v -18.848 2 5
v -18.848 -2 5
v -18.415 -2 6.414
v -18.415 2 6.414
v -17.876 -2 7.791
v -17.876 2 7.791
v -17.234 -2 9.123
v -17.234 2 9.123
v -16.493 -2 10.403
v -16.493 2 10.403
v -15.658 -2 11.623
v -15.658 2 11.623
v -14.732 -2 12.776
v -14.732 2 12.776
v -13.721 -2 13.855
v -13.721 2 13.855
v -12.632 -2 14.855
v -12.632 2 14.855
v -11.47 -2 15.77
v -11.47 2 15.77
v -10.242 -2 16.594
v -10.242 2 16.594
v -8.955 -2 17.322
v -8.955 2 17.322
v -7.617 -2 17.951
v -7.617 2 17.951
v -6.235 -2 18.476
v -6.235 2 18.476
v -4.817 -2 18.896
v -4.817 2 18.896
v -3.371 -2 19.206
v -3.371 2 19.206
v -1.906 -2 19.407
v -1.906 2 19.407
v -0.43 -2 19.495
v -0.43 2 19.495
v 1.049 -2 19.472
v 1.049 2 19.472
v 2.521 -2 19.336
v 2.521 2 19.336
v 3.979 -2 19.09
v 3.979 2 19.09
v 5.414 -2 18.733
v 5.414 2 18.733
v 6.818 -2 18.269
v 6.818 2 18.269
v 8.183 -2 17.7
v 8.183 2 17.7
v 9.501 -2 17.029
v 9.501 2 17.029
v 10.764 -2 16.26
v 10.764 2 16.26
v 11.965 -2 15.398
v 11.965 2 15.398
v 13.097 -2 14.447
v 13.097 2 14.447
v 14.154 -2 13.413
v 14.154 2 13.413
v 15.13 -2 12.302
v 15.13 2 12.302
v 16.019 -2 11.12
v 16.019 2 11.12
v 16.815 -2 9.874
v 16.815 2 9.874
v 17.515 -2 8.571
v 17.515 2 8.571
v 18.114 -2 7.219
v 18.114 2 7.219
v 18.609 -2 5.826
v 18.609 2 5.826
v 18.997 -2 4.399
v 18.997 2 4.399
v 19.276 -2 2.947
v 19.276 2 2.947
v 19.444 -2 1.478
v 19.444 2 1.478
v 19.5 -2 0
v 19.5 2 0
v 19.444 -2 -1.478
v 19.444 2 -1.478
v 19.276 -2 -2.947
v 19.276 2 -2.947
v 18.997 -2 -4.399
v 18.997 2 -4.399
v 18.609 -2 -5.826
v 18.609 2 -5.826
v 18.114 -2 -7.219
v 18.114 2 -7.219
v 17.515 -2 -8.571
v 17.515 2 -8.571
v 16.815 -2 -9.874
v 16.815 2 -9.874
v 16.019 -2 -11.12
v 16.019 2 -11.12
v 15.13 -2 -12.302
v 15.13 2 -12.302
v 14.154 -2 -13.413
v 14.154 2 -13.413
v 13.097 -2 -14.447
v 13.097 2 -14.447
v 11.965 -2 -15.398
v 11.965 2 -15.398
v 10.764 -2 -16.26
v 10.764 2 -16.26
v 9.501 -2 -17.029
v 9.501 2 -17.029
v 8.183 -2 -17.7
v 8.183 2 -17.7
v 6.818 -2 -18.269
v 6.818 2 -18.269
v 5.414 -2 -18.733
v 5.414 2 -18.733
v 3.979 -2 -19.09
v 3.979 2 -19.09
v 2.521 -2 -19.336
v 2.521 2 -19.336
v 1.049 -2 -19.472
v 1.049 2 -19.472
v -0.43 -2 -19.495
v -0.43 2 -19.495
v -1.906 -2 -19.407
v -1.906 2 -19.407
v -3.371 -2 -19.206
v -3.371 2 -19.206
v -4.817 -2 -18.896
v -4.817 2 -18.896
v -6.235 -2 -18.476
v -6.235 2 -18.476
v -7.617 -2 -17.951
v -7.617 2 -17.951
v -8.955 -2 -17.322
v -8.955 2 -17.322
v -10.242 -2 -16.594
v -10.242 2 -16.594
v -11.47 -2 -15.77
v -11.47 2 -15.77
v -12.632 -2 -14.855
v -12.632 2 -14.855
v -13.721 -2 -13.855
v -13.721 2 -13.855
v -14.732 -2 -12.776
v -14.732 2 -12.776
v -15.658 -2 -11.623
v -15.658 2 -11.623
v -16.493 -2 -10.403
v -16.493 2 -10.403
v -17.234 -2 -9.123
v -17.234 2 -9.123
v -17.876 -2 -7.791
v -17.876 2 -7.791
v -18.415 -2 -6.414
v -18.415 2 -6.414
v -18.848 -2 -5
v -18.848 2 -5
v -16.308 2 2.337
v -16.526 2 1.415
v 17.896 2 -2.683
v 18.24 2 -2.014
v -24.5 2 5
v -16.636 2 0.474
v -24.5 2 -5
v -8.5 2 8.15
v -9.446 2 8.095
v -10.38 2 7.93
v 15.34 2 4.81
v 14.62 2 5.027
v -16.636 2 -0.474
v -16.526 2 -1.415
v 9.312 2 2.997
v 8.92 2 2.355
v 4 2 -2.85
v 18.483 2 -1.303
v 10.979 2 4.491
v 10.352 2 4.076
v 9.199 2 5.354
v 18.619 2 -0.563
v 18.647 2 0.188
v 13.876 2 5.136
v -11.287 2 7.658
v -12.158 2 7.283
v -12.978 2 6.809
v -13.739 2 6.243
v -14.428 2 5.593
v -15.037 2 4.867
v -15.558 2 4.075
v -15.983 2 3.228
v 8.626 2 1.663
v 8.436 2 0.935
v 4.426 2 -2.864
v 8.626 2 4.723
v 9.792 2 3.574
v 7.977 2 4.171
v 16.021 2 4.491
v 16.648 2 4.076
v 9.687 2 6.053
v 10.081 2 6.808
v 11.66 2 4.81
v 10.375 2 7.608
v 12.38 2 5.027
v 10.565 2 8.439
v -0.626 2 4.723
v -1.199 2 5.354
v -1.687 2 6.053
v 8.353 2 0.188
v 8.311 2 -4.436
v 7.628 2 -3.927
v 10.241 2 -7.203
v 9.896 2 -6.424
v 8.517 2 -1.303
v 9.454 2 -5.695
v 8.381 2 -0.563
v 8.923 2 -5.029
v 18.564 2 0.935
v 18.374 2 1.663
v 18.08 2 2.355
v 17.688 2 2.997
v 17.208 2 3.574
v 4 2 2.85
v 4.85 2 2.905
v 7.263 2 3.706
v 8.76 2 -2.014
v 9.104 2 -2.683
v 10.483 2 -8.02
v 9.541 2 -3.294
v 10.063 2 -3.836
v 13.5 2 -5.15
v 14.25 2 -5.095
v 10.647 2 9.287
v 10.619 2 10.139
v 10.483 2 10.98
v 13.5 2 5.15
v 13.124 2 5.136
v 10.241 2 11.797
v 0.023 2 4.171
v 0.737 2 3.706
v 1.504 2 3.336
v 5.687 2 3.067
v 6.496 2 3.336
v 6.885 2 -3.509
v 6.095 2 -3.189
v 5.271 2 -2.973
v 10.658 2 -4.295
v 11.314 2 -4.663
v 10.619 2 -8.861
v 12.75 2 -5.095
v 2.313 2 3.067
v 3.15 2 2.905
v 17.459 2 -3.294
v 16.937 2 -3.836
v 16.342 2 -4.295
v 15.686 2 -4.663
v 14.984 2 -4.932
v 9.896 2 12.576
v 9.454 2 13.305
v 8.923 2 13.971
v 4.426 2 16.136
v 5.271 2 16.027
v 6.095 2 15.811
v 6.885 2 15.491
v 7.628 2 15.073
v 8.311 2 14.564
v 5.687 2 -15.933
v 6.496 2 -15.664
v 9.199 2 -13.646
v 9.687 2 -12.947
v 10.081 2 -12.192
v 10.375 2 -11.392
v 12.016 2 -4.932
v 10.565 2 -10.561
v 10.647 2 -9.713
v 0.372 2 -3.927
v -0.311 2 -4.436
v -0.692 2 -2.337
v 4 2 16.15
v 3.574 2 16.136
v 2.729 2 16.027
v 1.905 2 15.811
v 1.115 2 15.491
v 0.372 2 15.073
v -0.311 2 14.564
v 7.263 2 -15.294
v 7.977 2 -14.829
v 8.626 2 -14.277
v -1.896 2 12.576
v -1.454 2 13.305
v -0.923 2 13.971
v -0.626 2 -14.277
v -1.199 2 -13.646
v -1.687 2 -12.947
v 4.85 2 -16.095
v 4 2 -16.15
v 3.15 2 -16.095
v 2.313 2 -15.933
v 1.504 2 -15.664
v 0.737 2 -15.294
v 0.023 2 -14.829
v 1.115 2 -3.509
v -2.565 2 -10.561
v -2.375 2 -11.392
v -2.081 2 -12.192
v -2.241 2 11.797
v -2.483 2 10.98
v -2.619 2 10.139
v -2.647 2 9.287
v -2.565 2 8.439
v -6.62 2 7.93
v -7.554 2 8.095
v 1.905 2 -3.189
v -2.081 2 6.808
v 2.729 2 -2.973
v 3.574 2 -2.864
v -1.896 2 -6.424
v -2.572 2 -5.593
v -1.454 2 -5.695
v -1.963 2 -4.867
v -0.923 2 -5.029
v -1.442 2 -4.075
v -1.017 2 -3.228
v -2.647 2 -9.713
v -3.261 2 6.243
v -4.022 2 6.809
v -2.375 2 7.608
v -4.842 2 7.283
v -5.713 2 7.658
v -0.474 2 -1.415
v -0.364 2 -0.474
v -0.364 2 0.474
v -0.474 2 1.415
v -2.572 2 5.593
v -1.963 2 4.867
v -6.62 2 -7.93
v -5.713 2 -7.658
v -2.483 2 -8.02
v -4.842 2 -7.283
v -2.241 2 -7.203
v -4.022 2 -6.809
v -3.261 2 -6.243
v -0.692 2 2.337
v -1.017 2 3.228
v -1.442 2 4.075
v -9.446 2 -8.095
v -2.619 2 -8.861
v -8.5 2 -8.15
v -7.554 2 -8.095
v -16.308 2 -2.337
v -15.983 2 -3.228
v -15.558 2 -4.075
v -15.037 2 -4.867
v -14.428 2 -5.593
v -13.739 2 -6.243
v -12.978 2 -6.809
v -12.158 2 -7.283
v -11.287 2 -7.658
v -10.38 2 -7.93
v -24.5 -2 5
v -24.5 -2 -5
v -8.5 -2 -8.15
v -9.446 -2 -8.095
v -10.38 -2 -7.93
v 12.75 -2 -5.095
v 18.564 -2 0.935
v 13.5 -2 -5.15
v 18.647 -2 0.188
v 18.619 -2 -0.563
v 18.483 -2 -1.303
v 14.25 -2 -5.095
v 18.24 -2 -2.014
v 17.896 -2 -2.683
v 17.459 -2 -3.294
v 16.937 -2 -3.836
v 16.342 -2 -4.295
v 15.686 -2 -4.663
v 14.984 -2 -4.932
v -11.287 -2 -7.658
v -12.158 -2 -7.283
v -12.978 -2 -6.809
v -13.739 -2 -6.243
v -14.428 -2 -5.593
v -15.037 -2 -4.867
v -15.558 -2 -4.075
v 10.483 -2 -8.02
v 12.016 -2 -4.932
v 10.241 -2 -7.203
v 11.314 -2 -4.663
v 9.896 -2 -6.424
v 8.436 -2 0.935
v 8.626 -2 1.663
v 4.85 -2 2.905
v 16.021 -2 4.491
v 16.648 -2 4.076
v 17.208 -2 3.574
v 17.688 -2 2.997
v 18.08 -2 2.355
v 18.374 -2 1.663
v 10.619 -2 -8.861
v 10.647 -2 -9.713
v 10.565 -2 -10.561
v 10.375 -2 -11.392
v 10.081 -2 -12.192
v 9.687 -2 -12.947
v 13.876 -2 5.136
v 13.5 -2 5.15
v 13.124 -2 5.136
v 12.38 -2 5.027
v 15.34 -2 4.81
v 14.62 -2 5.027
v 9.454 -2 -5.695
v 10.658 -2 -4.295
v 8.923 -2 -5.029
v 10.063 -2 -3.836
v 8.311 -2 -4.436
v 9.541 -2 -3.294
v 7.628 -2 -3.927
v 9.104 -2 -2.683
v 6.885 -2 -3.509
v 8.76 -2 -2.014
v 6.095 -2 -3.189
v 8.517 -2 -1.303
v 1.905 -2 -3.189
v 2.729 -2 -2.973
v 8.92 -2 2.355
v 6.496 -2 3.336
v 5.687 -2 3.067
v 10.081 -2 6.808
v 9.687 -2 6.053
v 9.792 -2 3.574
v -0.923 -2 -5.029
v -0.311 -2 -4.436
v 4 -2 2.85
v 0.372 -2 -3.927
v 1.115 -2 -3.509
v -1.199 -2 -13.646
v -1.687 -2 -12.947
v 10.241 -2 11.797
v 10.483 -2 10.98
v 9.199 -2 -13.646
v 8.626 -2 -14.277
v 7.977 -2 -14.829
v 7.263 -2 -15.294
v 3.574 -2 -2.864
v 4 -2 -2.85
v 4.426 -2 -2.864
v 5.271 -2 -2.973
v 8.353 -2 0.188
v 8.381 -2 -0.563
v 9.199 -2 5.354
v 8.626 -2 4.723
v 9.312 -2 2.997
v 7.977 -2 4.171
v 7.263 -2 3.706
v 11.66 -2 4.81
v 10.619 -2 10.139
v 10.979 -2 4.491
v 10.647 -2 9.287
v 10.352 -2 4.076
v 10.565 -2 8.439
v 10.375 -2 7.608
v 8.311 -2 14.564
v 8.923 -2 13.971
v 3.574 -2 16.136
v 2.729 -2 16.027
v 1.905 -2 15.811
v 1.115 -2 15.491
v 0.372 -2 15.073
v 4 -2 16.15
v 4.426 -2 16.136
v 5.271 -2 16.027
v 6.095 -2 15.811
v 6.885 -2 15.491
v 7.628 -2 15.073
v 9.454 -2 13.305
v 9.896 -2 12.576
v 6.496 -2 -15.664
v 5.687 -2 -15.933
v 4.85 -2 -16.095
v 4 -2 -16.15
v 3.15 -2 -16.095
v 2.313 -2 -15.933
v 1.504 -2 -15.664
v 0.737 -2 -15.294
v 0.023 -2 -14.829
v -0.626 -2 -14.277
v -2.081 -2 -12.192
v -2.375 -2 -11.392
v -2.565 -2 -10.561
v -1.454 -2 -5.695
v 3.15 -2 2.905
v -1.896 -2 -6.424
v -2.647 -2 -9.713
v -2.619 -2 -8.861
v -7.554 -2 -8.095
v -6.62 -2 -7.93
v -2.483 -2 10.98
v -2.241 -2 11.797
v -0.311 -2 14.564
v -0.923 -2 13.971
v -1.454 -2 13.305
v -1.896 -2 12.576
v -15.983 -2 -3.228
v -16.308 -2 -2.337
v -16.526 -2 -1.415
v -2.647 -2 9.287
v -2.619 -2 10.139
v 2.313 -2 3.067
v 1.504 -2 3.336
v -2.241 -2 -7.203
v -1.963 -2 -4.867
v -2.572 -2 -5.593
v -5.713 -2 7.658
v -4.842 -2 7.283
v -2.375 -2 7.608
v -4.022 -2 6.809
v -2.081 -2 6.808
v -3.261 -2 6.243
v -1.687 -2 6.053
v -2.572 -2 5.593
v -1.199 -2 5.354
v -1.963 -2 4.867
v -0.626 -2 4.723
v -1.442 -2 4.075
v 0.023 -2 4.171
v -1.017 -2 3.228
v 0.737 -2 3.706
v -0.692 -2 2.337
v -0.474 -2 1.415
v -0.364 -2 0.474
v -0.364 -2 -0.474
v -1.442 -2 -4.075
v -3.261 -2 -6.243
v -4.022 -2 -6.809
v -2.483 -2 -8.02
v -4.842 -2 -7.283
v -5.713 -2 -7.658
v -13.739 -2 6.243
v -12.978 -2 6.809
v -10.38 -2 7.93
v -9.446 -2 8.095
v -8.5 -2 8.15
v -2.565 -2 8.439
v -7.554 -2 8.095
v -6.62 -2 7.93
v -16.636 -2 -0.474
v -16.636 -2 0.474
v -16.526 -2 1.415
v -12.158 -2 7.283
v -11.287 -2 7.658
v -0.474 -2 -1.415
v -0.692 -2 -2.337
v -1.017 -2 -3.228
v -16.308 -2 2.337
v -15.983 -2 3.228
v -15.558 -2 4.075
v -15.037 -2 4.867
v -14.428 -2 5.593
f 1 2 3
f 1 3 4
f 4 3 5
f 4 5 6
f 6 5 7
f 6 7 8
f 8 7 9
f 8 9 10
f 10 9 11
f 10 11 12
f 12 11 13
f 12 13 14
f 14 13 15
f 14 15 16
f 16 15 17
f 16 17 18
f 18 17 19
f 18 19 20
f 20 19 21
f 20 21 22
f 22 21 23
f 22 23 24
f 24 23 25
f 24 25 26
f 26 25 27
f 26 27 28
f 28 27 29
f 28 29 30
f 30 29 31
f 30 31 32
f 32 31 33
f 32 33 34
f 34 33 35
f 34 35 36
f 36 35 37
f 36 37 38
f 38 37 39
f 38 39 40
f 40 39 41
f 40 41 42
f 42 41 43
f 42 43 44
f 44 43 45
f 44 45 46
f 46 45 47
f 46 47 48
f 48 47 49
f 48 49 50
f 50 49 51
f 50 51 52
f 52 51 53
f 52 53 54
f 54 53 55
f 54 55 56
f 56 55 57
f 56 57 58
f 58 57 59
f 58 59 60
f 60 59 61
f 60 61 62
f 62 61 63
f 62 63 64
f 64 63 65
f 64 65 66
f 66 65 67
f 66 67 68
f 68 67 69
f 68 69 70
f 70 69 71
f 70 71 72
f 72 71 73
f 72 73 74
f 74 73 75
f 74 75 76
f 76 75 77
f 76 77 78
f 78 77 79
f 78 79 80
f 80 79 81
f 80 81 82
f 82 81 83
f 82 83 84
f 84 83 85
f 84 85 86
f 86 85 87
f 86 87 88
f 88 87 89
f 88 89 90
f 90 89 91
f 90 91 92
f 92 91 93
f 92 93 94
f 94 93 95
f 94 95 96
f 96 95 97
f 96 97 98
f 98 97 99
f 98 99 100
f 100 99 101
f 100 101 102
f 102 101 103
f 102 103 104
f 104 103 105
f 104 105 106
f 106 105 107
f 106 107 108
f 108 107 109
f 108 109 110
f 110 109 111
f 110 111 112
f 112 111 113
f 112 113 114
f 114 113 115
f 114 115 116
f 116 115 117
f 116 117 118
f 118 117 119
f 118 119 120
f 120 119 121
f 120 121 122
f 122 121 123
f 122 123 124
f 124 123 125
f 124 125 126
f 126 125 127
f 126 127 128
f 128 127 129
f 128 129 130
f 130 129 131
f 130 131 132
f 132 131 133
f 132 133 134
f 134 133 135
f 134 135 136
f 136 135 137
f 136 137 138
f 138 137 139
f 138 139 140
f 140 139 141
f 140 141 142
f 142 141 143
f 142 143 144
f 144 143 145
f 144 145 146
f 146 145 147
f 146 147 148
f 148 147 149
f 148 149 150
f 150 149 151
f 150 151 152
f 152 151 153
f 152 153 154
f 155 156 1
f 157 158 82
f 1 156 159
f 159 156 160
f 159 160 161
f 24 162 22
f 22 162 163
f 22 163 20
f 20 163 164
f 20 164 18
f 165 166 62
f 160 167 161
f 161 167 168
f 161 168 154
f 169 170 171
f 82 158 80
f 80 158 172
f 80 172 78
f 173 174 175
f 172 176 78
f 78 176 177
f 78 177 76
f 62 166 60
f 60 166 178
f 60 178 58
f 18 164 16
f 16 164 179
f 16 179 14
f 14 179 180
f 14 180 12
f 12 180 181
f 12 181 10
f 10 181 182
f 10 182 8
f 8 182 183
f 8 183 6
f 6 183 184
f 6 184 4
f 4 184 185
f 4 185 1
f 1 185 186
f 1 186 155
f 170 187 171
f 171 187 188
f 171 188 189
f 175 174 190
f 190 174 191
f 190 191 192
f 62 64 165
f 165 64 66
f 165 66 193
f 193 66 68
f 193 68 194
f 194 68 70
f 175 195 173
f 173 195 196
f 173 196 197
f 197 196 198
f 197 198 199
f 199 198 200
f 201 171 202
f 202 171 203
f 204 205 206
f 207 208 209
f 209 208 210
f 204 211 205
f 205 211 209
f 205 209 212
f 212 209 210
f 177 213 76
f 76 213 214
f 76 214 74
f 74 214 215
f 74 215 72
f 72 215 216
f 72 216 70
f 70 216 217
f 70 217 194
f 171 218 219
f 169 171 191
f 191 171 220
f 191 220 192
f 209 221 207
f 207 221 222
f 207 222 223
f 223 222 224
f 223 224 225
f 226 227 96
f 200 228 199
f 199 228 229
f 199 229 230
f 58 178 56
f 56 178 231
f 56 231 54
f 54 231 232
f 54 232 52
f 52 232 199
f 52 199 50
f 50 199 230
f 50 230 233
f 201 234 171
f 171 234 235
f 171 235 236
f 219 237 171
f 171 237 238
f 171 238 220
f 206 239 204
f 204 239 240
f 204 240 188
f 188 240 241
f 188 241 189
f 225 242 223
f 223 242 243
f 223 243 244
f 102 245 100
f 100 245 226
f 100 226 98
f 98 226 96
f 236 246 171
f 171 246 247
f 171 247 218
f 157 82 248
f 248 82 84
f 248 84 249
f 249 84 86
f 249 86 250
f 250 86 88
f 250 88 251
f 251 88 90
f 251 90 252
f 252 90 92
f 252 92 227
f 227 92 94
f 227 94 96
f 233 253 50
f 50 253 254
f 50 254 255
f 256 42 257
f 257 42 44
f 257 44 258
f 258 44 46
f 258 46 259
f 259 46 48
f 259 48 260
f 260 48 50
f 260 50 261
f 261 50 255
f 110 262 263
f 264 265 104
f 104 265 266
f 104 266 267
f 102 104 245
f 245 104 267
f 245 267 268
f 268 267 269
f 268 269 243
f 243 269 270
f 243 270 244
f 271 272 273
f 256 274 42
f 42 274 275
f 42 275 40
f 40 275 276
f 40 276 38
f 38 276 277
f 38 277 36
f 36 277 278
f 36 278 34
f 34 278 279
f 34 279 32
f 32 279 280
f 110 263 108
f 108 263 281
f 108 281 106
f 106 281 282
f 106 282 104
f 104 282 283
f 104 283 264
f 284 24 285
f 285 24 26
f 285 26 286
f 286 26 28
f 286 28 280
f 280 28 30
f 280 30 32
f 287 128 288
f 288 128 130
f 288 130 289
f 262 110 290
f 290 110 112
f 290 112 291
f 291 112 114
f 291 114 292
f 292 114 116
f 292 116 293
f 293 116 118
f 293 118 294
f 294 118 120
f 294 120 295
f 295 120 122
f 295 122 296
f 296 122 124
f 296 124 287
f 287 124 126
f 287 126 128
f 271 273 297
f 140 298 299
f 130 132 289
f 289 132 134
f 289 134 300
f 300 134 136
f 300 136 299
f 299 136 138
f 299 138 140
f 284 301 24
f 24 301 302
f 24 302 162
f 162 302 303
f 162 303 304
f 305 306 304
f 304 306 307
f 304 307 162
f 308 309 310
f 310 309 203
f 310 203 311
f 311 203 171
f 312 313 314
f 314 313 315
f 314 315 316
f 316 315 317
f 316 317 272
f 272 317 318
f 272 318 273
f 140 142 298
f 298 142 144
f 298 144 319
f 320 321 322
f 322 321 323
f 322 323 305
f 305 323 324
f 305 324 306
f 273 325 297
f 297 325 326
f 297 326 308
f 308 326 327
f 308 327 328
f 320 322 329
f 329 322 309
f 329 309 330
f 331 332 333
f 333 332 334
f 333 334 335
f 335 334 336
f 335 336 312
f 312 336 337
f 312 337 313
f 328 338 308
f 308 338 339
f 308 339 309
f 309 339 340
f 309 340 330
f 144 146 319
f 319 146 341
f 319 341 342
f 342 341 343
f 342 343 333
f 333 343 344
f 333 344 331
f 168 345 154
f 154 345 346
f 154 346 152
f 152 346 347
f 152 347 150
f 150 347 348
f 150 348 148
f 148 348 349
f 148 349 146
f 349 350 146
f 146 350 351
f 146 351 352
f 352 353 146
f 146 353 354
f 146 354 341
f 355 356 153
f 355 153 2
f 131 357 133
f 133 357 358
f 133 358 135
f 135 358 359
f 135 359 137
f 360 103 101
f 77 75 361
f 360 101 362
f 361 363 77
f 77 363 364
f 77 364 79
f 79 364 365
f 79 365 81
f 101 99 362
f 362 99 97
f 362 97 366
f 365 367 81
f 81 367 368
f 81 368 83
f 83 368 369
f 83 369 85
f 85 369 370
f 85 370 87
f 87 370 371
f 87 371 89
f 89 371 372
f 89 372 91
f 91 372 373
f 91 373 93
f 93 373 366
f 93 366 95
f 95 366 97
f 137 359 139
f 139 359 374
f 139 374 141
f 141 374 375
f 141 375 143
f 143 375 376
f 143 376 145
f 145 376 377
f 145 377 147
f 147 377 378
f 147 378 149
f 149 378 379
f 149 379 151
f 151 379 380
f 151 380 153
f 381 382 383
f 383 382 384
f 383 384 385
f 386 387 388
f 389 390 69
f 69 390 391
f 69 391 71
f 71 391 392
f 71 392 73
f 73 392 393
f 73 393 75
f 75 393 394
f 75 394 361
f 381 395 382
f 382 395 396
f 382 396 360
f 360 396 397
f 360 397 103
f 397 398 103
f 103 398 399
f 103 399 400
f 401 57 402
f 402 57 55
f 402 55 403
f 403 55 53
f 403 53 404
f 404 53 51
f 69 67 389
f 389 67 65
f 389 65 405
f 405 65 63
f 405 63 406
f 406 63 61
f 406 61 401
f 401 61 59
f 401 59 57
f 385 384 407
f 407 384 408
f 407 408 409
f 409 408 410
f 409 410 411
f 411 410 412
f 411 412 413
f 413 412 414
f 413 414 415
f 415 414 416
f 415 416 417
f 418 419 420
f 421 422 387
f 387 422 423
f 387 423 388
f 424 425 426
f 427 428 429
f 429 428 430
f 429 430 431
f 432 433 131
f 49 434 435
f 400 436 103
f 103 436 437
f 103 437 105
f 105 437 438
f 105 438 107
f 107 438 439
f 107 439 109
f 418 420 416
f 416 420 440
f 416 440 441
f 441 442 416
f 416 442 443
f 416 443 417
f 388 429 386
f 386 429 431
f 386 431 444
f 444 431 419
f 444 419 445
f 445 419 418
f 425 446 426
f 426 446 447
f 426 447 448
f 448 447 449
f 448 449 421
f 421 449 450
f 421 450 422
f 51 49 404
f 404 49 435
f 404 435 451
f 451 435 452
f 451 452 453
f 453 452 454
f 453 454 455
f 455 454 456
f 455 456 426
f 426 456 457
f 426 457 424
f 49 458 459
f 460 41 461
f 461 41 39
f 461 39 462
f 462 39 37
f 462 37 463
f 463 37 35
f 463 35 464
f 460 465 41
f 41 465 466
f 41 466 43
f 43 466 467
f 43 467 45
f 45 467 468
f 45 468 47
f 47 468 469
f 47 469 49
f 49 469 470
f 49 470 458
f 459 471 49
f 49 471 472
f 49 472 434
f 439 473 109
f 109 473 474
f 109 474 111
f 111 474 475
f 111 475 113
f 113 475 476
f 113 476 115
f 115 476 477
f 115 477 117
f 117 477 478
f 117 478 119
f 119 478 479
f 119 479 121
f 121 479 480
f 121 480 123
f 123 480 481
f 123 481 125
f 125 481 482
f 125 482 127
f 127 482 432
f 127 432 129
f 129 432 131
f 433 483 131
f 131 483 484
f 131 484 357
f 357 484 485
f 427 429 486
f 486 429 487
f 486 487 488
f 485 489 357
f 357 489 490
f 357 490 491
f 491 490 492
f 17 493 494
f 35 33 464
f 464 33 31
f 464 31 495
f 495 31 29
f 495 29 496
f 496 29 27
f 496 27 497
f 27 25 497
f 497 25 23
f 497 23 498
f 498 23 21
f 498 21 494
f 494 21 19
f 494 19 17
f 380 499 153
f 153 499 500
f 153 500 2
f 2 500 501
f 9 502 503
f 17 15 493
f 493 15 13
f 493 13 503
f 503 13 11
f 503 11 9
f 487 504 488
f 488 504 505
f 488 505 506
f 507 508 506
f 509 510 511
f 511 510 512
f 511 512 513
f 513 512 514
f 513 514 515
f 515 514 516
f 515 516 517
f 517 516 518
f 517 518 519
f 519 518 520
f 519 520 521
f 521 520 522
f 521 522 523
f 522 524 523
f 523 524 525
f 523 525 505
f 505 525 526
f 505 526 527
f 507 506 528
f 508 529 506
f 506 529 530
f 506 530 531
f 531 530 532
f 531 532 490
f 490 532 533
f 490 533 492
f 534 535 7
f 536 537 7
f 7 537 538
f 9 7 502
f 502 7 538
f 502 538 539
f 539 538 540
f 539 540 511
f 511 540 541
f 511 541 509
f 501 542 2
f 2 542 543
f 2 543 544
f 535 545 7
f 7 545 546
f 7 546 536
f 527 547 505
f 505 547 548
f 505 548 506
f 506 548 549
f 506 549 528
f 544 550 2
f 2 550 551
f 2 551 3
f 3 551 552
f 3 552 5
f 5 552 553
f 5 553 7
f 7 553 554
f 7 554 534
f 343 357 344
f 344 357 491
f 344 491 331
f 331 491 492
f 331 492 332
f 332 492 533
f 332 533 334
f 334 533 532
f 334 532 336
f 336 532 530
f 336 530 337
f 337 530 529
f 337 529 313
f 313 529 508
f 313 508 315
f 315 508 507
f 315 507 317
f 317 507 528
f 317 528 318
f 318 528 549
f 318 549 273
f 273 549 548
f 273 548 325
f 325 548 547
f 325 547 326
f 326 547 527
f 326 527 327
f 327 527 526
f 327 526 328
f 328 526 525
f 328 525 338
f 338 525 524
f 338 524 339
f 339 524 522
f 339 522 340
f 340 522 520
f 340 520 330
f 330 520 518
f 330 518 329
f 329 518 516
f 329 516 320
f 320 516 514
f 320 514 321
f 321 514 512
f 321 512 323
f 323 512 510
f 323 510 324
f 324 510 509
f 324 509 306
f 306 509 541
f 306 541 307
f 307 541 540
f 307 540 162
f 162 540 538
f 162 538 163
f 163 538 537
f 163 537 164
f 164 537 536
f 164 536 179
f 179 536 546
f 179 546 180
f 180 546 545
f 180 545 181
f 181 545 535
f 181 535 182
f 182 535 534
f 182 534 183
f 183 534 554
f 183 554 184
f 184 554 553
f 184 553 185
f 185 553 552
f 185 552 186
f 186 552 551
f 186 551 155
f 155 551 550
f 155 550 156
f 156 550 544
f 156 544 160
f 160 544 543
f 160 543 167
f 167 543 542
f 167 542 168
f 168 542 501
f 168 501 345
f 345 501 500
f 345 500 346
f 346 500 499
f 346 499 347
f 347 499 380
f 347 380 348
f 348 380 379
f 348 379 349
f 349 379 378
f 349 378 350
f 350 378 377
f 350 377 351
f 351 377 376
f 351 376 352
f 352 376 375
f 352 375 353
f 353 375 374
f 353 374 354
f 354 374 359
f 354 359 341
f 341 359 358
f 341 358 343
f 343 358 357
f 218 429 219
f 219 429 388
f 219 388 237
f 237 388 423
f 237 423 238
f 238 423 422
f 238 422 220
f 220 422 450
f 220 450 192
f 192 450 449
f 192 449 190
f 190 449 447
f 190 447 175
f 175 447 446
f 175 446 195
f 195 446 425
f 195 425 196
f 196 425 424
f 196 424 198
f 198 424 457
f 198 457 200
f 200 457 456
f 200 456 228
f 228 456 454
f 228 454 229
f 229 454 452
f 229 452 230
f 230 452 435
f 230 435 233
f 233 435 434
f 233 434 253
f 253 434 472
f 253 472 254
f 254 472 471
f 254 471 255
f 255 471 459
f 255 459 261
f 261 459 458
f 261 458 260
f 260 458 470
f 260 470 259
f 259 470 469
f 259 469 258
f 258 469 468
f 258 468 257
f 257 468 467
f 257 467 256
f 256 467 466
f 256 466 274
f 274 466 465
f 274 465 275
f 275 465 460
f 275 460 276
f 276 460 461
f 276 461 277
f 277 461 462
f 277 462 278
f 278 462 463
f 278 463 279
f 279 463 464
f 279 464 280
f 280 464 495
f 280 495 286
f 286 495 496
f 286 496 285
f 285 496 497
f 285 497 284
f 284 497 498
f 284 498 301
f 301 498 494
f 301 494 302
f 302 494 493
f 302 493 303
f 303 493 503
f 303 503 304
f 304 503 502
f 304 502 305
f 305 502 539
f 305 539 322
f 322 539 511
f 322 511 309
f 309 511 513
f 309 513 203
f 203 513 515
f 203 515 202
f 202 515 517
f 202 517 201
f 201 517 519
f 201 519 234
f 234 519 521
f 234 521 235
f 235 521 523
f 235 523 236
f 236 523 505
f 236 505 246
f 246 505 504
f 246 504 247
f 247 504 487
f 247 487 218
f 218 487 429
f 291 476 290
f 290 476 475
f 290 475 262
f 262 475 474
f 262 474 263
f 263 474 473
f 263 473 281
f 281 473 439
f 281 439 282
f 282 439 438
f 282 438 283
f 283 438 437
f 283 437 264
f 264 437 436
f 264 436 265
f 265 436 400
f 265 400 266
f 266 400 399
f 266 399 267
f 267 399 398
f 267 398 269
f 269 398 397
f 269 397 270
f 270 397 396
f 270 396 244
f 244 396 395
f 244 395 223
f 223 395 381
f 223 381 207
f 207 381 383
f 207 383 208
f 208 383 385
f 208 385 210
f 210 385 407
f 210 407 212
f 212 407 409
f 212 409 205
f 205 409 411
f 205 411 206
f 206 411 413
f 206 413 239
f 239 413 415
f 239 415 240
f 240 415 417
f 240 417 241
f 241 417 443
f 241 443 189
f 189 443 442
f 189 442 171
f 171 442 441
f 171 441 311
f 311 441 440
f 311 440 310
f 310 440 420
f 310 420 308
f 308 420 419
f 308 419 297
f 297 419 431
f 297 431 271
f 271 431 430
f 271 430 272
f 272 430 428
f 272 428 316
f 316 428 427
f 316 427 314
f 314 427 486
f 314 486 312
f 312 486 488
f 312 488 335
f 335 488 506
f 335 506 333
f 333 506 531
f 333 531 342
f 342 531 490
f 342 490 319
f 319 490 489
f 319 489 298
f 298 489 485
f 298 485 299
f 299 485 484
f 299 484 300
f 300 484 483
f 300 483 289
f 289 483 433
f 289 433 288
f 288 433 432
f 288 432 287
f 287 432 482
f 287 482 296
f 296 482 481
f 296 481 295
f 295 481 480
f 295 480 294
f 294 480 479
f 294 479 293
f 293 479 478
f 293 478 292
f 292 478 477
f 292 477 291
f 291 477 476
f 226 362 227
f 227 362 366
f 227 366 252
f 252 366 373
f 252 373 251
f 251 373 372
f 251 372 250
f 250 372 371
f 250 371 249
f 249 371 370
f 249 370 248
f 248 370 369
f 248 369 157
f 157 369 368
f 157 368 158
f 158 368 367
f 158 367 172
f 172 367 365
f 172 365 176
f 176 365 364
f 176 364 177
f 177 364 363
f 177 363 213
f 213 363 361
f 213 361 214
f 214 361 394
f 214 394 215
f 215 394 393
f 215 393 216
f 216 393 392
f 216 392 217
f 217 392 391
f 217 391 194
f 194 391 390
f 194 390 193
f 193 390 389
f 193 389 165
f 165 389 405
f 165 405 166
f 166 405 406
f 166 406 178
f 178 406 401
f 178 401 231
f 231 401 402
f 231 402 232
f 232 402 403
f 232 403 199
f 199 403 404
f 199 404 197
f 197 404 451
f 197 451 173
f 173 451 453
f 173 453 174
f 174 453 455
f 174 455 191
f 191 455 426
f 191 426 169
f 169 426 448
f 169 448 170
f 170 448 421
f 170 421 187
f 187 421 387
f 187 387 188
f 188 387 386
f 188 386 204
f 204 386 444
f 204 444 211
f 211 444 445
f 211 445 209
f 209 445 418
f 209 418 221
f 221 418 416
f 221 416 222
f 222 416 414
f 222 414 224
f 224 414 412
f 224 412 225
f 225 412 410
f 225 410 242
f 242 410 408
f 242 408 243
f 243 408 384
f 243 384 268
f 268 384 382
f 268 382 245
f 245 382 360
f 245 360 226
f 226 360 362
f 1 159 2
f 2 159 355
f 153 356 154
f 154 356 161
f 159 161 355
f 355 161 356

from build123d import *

# Parameters (mm, degrees)
SKETCH1_R             = 19.5
SKETCH1_R_2           = 8.15
SKETCH1_R_3           = 6.65
SKETCH1_R_4           = 5.15
DISCO_SEPARADOR_DEPTH = 4
SKETCH2_W             = 7
SKETCH2_H             = 10
PATA_AL_HUESO_DEPTH   = 4


with BuildPart() as part:
    # Sketch1 → Disco_separador (new body)
    with BuildSketch(Plane(origin=(0, -2, 0), x_dir=(1, 0, 0), z_dir=(0, 1, 0))):
        with Locations(Location((0, 0, 0), (0, 0, 270))):
            Circle(SKETCH1_R)
        with Locations(Location((-8.5, 0, 0), (0, 0, 270))):
            Circle(SKETCH1_R_2, mode=Mode.SUBTRACT)
        with Locations(Location((4, -9.5, 0), (0, 0, 270))):
            Circle(SKETCH1_R_3, mode=Mode.SUBTRACT)
        with Locations(Location((4, 9.5, 0), (0, 0, 270))):
            Circle(SKETCH1_R_3, mode=Mode.SUBTRACT)
        with Locations(Location((13.5, 0, 0), (0, 0, 270))):
            Circle(SKETCH1_R_4, mode=Mode.SUBTRACT)
    extrude(amount=DISCO_SEPARADOR_DEPTH)

    # Sketch2 → Pata_al_hueso (add)
    with BuildSketch(Plane(origin=(0, -2, 0), x_dir=(1, 0, 0), z_dir=(0, 1, 0))):
        with Locations((-21, 0)):
            Rectangle(SKETCH2_W, SKETCH2_H)
    extrude(amount=PATA_AL_HUESO_DEPTH)


solid = part.part
